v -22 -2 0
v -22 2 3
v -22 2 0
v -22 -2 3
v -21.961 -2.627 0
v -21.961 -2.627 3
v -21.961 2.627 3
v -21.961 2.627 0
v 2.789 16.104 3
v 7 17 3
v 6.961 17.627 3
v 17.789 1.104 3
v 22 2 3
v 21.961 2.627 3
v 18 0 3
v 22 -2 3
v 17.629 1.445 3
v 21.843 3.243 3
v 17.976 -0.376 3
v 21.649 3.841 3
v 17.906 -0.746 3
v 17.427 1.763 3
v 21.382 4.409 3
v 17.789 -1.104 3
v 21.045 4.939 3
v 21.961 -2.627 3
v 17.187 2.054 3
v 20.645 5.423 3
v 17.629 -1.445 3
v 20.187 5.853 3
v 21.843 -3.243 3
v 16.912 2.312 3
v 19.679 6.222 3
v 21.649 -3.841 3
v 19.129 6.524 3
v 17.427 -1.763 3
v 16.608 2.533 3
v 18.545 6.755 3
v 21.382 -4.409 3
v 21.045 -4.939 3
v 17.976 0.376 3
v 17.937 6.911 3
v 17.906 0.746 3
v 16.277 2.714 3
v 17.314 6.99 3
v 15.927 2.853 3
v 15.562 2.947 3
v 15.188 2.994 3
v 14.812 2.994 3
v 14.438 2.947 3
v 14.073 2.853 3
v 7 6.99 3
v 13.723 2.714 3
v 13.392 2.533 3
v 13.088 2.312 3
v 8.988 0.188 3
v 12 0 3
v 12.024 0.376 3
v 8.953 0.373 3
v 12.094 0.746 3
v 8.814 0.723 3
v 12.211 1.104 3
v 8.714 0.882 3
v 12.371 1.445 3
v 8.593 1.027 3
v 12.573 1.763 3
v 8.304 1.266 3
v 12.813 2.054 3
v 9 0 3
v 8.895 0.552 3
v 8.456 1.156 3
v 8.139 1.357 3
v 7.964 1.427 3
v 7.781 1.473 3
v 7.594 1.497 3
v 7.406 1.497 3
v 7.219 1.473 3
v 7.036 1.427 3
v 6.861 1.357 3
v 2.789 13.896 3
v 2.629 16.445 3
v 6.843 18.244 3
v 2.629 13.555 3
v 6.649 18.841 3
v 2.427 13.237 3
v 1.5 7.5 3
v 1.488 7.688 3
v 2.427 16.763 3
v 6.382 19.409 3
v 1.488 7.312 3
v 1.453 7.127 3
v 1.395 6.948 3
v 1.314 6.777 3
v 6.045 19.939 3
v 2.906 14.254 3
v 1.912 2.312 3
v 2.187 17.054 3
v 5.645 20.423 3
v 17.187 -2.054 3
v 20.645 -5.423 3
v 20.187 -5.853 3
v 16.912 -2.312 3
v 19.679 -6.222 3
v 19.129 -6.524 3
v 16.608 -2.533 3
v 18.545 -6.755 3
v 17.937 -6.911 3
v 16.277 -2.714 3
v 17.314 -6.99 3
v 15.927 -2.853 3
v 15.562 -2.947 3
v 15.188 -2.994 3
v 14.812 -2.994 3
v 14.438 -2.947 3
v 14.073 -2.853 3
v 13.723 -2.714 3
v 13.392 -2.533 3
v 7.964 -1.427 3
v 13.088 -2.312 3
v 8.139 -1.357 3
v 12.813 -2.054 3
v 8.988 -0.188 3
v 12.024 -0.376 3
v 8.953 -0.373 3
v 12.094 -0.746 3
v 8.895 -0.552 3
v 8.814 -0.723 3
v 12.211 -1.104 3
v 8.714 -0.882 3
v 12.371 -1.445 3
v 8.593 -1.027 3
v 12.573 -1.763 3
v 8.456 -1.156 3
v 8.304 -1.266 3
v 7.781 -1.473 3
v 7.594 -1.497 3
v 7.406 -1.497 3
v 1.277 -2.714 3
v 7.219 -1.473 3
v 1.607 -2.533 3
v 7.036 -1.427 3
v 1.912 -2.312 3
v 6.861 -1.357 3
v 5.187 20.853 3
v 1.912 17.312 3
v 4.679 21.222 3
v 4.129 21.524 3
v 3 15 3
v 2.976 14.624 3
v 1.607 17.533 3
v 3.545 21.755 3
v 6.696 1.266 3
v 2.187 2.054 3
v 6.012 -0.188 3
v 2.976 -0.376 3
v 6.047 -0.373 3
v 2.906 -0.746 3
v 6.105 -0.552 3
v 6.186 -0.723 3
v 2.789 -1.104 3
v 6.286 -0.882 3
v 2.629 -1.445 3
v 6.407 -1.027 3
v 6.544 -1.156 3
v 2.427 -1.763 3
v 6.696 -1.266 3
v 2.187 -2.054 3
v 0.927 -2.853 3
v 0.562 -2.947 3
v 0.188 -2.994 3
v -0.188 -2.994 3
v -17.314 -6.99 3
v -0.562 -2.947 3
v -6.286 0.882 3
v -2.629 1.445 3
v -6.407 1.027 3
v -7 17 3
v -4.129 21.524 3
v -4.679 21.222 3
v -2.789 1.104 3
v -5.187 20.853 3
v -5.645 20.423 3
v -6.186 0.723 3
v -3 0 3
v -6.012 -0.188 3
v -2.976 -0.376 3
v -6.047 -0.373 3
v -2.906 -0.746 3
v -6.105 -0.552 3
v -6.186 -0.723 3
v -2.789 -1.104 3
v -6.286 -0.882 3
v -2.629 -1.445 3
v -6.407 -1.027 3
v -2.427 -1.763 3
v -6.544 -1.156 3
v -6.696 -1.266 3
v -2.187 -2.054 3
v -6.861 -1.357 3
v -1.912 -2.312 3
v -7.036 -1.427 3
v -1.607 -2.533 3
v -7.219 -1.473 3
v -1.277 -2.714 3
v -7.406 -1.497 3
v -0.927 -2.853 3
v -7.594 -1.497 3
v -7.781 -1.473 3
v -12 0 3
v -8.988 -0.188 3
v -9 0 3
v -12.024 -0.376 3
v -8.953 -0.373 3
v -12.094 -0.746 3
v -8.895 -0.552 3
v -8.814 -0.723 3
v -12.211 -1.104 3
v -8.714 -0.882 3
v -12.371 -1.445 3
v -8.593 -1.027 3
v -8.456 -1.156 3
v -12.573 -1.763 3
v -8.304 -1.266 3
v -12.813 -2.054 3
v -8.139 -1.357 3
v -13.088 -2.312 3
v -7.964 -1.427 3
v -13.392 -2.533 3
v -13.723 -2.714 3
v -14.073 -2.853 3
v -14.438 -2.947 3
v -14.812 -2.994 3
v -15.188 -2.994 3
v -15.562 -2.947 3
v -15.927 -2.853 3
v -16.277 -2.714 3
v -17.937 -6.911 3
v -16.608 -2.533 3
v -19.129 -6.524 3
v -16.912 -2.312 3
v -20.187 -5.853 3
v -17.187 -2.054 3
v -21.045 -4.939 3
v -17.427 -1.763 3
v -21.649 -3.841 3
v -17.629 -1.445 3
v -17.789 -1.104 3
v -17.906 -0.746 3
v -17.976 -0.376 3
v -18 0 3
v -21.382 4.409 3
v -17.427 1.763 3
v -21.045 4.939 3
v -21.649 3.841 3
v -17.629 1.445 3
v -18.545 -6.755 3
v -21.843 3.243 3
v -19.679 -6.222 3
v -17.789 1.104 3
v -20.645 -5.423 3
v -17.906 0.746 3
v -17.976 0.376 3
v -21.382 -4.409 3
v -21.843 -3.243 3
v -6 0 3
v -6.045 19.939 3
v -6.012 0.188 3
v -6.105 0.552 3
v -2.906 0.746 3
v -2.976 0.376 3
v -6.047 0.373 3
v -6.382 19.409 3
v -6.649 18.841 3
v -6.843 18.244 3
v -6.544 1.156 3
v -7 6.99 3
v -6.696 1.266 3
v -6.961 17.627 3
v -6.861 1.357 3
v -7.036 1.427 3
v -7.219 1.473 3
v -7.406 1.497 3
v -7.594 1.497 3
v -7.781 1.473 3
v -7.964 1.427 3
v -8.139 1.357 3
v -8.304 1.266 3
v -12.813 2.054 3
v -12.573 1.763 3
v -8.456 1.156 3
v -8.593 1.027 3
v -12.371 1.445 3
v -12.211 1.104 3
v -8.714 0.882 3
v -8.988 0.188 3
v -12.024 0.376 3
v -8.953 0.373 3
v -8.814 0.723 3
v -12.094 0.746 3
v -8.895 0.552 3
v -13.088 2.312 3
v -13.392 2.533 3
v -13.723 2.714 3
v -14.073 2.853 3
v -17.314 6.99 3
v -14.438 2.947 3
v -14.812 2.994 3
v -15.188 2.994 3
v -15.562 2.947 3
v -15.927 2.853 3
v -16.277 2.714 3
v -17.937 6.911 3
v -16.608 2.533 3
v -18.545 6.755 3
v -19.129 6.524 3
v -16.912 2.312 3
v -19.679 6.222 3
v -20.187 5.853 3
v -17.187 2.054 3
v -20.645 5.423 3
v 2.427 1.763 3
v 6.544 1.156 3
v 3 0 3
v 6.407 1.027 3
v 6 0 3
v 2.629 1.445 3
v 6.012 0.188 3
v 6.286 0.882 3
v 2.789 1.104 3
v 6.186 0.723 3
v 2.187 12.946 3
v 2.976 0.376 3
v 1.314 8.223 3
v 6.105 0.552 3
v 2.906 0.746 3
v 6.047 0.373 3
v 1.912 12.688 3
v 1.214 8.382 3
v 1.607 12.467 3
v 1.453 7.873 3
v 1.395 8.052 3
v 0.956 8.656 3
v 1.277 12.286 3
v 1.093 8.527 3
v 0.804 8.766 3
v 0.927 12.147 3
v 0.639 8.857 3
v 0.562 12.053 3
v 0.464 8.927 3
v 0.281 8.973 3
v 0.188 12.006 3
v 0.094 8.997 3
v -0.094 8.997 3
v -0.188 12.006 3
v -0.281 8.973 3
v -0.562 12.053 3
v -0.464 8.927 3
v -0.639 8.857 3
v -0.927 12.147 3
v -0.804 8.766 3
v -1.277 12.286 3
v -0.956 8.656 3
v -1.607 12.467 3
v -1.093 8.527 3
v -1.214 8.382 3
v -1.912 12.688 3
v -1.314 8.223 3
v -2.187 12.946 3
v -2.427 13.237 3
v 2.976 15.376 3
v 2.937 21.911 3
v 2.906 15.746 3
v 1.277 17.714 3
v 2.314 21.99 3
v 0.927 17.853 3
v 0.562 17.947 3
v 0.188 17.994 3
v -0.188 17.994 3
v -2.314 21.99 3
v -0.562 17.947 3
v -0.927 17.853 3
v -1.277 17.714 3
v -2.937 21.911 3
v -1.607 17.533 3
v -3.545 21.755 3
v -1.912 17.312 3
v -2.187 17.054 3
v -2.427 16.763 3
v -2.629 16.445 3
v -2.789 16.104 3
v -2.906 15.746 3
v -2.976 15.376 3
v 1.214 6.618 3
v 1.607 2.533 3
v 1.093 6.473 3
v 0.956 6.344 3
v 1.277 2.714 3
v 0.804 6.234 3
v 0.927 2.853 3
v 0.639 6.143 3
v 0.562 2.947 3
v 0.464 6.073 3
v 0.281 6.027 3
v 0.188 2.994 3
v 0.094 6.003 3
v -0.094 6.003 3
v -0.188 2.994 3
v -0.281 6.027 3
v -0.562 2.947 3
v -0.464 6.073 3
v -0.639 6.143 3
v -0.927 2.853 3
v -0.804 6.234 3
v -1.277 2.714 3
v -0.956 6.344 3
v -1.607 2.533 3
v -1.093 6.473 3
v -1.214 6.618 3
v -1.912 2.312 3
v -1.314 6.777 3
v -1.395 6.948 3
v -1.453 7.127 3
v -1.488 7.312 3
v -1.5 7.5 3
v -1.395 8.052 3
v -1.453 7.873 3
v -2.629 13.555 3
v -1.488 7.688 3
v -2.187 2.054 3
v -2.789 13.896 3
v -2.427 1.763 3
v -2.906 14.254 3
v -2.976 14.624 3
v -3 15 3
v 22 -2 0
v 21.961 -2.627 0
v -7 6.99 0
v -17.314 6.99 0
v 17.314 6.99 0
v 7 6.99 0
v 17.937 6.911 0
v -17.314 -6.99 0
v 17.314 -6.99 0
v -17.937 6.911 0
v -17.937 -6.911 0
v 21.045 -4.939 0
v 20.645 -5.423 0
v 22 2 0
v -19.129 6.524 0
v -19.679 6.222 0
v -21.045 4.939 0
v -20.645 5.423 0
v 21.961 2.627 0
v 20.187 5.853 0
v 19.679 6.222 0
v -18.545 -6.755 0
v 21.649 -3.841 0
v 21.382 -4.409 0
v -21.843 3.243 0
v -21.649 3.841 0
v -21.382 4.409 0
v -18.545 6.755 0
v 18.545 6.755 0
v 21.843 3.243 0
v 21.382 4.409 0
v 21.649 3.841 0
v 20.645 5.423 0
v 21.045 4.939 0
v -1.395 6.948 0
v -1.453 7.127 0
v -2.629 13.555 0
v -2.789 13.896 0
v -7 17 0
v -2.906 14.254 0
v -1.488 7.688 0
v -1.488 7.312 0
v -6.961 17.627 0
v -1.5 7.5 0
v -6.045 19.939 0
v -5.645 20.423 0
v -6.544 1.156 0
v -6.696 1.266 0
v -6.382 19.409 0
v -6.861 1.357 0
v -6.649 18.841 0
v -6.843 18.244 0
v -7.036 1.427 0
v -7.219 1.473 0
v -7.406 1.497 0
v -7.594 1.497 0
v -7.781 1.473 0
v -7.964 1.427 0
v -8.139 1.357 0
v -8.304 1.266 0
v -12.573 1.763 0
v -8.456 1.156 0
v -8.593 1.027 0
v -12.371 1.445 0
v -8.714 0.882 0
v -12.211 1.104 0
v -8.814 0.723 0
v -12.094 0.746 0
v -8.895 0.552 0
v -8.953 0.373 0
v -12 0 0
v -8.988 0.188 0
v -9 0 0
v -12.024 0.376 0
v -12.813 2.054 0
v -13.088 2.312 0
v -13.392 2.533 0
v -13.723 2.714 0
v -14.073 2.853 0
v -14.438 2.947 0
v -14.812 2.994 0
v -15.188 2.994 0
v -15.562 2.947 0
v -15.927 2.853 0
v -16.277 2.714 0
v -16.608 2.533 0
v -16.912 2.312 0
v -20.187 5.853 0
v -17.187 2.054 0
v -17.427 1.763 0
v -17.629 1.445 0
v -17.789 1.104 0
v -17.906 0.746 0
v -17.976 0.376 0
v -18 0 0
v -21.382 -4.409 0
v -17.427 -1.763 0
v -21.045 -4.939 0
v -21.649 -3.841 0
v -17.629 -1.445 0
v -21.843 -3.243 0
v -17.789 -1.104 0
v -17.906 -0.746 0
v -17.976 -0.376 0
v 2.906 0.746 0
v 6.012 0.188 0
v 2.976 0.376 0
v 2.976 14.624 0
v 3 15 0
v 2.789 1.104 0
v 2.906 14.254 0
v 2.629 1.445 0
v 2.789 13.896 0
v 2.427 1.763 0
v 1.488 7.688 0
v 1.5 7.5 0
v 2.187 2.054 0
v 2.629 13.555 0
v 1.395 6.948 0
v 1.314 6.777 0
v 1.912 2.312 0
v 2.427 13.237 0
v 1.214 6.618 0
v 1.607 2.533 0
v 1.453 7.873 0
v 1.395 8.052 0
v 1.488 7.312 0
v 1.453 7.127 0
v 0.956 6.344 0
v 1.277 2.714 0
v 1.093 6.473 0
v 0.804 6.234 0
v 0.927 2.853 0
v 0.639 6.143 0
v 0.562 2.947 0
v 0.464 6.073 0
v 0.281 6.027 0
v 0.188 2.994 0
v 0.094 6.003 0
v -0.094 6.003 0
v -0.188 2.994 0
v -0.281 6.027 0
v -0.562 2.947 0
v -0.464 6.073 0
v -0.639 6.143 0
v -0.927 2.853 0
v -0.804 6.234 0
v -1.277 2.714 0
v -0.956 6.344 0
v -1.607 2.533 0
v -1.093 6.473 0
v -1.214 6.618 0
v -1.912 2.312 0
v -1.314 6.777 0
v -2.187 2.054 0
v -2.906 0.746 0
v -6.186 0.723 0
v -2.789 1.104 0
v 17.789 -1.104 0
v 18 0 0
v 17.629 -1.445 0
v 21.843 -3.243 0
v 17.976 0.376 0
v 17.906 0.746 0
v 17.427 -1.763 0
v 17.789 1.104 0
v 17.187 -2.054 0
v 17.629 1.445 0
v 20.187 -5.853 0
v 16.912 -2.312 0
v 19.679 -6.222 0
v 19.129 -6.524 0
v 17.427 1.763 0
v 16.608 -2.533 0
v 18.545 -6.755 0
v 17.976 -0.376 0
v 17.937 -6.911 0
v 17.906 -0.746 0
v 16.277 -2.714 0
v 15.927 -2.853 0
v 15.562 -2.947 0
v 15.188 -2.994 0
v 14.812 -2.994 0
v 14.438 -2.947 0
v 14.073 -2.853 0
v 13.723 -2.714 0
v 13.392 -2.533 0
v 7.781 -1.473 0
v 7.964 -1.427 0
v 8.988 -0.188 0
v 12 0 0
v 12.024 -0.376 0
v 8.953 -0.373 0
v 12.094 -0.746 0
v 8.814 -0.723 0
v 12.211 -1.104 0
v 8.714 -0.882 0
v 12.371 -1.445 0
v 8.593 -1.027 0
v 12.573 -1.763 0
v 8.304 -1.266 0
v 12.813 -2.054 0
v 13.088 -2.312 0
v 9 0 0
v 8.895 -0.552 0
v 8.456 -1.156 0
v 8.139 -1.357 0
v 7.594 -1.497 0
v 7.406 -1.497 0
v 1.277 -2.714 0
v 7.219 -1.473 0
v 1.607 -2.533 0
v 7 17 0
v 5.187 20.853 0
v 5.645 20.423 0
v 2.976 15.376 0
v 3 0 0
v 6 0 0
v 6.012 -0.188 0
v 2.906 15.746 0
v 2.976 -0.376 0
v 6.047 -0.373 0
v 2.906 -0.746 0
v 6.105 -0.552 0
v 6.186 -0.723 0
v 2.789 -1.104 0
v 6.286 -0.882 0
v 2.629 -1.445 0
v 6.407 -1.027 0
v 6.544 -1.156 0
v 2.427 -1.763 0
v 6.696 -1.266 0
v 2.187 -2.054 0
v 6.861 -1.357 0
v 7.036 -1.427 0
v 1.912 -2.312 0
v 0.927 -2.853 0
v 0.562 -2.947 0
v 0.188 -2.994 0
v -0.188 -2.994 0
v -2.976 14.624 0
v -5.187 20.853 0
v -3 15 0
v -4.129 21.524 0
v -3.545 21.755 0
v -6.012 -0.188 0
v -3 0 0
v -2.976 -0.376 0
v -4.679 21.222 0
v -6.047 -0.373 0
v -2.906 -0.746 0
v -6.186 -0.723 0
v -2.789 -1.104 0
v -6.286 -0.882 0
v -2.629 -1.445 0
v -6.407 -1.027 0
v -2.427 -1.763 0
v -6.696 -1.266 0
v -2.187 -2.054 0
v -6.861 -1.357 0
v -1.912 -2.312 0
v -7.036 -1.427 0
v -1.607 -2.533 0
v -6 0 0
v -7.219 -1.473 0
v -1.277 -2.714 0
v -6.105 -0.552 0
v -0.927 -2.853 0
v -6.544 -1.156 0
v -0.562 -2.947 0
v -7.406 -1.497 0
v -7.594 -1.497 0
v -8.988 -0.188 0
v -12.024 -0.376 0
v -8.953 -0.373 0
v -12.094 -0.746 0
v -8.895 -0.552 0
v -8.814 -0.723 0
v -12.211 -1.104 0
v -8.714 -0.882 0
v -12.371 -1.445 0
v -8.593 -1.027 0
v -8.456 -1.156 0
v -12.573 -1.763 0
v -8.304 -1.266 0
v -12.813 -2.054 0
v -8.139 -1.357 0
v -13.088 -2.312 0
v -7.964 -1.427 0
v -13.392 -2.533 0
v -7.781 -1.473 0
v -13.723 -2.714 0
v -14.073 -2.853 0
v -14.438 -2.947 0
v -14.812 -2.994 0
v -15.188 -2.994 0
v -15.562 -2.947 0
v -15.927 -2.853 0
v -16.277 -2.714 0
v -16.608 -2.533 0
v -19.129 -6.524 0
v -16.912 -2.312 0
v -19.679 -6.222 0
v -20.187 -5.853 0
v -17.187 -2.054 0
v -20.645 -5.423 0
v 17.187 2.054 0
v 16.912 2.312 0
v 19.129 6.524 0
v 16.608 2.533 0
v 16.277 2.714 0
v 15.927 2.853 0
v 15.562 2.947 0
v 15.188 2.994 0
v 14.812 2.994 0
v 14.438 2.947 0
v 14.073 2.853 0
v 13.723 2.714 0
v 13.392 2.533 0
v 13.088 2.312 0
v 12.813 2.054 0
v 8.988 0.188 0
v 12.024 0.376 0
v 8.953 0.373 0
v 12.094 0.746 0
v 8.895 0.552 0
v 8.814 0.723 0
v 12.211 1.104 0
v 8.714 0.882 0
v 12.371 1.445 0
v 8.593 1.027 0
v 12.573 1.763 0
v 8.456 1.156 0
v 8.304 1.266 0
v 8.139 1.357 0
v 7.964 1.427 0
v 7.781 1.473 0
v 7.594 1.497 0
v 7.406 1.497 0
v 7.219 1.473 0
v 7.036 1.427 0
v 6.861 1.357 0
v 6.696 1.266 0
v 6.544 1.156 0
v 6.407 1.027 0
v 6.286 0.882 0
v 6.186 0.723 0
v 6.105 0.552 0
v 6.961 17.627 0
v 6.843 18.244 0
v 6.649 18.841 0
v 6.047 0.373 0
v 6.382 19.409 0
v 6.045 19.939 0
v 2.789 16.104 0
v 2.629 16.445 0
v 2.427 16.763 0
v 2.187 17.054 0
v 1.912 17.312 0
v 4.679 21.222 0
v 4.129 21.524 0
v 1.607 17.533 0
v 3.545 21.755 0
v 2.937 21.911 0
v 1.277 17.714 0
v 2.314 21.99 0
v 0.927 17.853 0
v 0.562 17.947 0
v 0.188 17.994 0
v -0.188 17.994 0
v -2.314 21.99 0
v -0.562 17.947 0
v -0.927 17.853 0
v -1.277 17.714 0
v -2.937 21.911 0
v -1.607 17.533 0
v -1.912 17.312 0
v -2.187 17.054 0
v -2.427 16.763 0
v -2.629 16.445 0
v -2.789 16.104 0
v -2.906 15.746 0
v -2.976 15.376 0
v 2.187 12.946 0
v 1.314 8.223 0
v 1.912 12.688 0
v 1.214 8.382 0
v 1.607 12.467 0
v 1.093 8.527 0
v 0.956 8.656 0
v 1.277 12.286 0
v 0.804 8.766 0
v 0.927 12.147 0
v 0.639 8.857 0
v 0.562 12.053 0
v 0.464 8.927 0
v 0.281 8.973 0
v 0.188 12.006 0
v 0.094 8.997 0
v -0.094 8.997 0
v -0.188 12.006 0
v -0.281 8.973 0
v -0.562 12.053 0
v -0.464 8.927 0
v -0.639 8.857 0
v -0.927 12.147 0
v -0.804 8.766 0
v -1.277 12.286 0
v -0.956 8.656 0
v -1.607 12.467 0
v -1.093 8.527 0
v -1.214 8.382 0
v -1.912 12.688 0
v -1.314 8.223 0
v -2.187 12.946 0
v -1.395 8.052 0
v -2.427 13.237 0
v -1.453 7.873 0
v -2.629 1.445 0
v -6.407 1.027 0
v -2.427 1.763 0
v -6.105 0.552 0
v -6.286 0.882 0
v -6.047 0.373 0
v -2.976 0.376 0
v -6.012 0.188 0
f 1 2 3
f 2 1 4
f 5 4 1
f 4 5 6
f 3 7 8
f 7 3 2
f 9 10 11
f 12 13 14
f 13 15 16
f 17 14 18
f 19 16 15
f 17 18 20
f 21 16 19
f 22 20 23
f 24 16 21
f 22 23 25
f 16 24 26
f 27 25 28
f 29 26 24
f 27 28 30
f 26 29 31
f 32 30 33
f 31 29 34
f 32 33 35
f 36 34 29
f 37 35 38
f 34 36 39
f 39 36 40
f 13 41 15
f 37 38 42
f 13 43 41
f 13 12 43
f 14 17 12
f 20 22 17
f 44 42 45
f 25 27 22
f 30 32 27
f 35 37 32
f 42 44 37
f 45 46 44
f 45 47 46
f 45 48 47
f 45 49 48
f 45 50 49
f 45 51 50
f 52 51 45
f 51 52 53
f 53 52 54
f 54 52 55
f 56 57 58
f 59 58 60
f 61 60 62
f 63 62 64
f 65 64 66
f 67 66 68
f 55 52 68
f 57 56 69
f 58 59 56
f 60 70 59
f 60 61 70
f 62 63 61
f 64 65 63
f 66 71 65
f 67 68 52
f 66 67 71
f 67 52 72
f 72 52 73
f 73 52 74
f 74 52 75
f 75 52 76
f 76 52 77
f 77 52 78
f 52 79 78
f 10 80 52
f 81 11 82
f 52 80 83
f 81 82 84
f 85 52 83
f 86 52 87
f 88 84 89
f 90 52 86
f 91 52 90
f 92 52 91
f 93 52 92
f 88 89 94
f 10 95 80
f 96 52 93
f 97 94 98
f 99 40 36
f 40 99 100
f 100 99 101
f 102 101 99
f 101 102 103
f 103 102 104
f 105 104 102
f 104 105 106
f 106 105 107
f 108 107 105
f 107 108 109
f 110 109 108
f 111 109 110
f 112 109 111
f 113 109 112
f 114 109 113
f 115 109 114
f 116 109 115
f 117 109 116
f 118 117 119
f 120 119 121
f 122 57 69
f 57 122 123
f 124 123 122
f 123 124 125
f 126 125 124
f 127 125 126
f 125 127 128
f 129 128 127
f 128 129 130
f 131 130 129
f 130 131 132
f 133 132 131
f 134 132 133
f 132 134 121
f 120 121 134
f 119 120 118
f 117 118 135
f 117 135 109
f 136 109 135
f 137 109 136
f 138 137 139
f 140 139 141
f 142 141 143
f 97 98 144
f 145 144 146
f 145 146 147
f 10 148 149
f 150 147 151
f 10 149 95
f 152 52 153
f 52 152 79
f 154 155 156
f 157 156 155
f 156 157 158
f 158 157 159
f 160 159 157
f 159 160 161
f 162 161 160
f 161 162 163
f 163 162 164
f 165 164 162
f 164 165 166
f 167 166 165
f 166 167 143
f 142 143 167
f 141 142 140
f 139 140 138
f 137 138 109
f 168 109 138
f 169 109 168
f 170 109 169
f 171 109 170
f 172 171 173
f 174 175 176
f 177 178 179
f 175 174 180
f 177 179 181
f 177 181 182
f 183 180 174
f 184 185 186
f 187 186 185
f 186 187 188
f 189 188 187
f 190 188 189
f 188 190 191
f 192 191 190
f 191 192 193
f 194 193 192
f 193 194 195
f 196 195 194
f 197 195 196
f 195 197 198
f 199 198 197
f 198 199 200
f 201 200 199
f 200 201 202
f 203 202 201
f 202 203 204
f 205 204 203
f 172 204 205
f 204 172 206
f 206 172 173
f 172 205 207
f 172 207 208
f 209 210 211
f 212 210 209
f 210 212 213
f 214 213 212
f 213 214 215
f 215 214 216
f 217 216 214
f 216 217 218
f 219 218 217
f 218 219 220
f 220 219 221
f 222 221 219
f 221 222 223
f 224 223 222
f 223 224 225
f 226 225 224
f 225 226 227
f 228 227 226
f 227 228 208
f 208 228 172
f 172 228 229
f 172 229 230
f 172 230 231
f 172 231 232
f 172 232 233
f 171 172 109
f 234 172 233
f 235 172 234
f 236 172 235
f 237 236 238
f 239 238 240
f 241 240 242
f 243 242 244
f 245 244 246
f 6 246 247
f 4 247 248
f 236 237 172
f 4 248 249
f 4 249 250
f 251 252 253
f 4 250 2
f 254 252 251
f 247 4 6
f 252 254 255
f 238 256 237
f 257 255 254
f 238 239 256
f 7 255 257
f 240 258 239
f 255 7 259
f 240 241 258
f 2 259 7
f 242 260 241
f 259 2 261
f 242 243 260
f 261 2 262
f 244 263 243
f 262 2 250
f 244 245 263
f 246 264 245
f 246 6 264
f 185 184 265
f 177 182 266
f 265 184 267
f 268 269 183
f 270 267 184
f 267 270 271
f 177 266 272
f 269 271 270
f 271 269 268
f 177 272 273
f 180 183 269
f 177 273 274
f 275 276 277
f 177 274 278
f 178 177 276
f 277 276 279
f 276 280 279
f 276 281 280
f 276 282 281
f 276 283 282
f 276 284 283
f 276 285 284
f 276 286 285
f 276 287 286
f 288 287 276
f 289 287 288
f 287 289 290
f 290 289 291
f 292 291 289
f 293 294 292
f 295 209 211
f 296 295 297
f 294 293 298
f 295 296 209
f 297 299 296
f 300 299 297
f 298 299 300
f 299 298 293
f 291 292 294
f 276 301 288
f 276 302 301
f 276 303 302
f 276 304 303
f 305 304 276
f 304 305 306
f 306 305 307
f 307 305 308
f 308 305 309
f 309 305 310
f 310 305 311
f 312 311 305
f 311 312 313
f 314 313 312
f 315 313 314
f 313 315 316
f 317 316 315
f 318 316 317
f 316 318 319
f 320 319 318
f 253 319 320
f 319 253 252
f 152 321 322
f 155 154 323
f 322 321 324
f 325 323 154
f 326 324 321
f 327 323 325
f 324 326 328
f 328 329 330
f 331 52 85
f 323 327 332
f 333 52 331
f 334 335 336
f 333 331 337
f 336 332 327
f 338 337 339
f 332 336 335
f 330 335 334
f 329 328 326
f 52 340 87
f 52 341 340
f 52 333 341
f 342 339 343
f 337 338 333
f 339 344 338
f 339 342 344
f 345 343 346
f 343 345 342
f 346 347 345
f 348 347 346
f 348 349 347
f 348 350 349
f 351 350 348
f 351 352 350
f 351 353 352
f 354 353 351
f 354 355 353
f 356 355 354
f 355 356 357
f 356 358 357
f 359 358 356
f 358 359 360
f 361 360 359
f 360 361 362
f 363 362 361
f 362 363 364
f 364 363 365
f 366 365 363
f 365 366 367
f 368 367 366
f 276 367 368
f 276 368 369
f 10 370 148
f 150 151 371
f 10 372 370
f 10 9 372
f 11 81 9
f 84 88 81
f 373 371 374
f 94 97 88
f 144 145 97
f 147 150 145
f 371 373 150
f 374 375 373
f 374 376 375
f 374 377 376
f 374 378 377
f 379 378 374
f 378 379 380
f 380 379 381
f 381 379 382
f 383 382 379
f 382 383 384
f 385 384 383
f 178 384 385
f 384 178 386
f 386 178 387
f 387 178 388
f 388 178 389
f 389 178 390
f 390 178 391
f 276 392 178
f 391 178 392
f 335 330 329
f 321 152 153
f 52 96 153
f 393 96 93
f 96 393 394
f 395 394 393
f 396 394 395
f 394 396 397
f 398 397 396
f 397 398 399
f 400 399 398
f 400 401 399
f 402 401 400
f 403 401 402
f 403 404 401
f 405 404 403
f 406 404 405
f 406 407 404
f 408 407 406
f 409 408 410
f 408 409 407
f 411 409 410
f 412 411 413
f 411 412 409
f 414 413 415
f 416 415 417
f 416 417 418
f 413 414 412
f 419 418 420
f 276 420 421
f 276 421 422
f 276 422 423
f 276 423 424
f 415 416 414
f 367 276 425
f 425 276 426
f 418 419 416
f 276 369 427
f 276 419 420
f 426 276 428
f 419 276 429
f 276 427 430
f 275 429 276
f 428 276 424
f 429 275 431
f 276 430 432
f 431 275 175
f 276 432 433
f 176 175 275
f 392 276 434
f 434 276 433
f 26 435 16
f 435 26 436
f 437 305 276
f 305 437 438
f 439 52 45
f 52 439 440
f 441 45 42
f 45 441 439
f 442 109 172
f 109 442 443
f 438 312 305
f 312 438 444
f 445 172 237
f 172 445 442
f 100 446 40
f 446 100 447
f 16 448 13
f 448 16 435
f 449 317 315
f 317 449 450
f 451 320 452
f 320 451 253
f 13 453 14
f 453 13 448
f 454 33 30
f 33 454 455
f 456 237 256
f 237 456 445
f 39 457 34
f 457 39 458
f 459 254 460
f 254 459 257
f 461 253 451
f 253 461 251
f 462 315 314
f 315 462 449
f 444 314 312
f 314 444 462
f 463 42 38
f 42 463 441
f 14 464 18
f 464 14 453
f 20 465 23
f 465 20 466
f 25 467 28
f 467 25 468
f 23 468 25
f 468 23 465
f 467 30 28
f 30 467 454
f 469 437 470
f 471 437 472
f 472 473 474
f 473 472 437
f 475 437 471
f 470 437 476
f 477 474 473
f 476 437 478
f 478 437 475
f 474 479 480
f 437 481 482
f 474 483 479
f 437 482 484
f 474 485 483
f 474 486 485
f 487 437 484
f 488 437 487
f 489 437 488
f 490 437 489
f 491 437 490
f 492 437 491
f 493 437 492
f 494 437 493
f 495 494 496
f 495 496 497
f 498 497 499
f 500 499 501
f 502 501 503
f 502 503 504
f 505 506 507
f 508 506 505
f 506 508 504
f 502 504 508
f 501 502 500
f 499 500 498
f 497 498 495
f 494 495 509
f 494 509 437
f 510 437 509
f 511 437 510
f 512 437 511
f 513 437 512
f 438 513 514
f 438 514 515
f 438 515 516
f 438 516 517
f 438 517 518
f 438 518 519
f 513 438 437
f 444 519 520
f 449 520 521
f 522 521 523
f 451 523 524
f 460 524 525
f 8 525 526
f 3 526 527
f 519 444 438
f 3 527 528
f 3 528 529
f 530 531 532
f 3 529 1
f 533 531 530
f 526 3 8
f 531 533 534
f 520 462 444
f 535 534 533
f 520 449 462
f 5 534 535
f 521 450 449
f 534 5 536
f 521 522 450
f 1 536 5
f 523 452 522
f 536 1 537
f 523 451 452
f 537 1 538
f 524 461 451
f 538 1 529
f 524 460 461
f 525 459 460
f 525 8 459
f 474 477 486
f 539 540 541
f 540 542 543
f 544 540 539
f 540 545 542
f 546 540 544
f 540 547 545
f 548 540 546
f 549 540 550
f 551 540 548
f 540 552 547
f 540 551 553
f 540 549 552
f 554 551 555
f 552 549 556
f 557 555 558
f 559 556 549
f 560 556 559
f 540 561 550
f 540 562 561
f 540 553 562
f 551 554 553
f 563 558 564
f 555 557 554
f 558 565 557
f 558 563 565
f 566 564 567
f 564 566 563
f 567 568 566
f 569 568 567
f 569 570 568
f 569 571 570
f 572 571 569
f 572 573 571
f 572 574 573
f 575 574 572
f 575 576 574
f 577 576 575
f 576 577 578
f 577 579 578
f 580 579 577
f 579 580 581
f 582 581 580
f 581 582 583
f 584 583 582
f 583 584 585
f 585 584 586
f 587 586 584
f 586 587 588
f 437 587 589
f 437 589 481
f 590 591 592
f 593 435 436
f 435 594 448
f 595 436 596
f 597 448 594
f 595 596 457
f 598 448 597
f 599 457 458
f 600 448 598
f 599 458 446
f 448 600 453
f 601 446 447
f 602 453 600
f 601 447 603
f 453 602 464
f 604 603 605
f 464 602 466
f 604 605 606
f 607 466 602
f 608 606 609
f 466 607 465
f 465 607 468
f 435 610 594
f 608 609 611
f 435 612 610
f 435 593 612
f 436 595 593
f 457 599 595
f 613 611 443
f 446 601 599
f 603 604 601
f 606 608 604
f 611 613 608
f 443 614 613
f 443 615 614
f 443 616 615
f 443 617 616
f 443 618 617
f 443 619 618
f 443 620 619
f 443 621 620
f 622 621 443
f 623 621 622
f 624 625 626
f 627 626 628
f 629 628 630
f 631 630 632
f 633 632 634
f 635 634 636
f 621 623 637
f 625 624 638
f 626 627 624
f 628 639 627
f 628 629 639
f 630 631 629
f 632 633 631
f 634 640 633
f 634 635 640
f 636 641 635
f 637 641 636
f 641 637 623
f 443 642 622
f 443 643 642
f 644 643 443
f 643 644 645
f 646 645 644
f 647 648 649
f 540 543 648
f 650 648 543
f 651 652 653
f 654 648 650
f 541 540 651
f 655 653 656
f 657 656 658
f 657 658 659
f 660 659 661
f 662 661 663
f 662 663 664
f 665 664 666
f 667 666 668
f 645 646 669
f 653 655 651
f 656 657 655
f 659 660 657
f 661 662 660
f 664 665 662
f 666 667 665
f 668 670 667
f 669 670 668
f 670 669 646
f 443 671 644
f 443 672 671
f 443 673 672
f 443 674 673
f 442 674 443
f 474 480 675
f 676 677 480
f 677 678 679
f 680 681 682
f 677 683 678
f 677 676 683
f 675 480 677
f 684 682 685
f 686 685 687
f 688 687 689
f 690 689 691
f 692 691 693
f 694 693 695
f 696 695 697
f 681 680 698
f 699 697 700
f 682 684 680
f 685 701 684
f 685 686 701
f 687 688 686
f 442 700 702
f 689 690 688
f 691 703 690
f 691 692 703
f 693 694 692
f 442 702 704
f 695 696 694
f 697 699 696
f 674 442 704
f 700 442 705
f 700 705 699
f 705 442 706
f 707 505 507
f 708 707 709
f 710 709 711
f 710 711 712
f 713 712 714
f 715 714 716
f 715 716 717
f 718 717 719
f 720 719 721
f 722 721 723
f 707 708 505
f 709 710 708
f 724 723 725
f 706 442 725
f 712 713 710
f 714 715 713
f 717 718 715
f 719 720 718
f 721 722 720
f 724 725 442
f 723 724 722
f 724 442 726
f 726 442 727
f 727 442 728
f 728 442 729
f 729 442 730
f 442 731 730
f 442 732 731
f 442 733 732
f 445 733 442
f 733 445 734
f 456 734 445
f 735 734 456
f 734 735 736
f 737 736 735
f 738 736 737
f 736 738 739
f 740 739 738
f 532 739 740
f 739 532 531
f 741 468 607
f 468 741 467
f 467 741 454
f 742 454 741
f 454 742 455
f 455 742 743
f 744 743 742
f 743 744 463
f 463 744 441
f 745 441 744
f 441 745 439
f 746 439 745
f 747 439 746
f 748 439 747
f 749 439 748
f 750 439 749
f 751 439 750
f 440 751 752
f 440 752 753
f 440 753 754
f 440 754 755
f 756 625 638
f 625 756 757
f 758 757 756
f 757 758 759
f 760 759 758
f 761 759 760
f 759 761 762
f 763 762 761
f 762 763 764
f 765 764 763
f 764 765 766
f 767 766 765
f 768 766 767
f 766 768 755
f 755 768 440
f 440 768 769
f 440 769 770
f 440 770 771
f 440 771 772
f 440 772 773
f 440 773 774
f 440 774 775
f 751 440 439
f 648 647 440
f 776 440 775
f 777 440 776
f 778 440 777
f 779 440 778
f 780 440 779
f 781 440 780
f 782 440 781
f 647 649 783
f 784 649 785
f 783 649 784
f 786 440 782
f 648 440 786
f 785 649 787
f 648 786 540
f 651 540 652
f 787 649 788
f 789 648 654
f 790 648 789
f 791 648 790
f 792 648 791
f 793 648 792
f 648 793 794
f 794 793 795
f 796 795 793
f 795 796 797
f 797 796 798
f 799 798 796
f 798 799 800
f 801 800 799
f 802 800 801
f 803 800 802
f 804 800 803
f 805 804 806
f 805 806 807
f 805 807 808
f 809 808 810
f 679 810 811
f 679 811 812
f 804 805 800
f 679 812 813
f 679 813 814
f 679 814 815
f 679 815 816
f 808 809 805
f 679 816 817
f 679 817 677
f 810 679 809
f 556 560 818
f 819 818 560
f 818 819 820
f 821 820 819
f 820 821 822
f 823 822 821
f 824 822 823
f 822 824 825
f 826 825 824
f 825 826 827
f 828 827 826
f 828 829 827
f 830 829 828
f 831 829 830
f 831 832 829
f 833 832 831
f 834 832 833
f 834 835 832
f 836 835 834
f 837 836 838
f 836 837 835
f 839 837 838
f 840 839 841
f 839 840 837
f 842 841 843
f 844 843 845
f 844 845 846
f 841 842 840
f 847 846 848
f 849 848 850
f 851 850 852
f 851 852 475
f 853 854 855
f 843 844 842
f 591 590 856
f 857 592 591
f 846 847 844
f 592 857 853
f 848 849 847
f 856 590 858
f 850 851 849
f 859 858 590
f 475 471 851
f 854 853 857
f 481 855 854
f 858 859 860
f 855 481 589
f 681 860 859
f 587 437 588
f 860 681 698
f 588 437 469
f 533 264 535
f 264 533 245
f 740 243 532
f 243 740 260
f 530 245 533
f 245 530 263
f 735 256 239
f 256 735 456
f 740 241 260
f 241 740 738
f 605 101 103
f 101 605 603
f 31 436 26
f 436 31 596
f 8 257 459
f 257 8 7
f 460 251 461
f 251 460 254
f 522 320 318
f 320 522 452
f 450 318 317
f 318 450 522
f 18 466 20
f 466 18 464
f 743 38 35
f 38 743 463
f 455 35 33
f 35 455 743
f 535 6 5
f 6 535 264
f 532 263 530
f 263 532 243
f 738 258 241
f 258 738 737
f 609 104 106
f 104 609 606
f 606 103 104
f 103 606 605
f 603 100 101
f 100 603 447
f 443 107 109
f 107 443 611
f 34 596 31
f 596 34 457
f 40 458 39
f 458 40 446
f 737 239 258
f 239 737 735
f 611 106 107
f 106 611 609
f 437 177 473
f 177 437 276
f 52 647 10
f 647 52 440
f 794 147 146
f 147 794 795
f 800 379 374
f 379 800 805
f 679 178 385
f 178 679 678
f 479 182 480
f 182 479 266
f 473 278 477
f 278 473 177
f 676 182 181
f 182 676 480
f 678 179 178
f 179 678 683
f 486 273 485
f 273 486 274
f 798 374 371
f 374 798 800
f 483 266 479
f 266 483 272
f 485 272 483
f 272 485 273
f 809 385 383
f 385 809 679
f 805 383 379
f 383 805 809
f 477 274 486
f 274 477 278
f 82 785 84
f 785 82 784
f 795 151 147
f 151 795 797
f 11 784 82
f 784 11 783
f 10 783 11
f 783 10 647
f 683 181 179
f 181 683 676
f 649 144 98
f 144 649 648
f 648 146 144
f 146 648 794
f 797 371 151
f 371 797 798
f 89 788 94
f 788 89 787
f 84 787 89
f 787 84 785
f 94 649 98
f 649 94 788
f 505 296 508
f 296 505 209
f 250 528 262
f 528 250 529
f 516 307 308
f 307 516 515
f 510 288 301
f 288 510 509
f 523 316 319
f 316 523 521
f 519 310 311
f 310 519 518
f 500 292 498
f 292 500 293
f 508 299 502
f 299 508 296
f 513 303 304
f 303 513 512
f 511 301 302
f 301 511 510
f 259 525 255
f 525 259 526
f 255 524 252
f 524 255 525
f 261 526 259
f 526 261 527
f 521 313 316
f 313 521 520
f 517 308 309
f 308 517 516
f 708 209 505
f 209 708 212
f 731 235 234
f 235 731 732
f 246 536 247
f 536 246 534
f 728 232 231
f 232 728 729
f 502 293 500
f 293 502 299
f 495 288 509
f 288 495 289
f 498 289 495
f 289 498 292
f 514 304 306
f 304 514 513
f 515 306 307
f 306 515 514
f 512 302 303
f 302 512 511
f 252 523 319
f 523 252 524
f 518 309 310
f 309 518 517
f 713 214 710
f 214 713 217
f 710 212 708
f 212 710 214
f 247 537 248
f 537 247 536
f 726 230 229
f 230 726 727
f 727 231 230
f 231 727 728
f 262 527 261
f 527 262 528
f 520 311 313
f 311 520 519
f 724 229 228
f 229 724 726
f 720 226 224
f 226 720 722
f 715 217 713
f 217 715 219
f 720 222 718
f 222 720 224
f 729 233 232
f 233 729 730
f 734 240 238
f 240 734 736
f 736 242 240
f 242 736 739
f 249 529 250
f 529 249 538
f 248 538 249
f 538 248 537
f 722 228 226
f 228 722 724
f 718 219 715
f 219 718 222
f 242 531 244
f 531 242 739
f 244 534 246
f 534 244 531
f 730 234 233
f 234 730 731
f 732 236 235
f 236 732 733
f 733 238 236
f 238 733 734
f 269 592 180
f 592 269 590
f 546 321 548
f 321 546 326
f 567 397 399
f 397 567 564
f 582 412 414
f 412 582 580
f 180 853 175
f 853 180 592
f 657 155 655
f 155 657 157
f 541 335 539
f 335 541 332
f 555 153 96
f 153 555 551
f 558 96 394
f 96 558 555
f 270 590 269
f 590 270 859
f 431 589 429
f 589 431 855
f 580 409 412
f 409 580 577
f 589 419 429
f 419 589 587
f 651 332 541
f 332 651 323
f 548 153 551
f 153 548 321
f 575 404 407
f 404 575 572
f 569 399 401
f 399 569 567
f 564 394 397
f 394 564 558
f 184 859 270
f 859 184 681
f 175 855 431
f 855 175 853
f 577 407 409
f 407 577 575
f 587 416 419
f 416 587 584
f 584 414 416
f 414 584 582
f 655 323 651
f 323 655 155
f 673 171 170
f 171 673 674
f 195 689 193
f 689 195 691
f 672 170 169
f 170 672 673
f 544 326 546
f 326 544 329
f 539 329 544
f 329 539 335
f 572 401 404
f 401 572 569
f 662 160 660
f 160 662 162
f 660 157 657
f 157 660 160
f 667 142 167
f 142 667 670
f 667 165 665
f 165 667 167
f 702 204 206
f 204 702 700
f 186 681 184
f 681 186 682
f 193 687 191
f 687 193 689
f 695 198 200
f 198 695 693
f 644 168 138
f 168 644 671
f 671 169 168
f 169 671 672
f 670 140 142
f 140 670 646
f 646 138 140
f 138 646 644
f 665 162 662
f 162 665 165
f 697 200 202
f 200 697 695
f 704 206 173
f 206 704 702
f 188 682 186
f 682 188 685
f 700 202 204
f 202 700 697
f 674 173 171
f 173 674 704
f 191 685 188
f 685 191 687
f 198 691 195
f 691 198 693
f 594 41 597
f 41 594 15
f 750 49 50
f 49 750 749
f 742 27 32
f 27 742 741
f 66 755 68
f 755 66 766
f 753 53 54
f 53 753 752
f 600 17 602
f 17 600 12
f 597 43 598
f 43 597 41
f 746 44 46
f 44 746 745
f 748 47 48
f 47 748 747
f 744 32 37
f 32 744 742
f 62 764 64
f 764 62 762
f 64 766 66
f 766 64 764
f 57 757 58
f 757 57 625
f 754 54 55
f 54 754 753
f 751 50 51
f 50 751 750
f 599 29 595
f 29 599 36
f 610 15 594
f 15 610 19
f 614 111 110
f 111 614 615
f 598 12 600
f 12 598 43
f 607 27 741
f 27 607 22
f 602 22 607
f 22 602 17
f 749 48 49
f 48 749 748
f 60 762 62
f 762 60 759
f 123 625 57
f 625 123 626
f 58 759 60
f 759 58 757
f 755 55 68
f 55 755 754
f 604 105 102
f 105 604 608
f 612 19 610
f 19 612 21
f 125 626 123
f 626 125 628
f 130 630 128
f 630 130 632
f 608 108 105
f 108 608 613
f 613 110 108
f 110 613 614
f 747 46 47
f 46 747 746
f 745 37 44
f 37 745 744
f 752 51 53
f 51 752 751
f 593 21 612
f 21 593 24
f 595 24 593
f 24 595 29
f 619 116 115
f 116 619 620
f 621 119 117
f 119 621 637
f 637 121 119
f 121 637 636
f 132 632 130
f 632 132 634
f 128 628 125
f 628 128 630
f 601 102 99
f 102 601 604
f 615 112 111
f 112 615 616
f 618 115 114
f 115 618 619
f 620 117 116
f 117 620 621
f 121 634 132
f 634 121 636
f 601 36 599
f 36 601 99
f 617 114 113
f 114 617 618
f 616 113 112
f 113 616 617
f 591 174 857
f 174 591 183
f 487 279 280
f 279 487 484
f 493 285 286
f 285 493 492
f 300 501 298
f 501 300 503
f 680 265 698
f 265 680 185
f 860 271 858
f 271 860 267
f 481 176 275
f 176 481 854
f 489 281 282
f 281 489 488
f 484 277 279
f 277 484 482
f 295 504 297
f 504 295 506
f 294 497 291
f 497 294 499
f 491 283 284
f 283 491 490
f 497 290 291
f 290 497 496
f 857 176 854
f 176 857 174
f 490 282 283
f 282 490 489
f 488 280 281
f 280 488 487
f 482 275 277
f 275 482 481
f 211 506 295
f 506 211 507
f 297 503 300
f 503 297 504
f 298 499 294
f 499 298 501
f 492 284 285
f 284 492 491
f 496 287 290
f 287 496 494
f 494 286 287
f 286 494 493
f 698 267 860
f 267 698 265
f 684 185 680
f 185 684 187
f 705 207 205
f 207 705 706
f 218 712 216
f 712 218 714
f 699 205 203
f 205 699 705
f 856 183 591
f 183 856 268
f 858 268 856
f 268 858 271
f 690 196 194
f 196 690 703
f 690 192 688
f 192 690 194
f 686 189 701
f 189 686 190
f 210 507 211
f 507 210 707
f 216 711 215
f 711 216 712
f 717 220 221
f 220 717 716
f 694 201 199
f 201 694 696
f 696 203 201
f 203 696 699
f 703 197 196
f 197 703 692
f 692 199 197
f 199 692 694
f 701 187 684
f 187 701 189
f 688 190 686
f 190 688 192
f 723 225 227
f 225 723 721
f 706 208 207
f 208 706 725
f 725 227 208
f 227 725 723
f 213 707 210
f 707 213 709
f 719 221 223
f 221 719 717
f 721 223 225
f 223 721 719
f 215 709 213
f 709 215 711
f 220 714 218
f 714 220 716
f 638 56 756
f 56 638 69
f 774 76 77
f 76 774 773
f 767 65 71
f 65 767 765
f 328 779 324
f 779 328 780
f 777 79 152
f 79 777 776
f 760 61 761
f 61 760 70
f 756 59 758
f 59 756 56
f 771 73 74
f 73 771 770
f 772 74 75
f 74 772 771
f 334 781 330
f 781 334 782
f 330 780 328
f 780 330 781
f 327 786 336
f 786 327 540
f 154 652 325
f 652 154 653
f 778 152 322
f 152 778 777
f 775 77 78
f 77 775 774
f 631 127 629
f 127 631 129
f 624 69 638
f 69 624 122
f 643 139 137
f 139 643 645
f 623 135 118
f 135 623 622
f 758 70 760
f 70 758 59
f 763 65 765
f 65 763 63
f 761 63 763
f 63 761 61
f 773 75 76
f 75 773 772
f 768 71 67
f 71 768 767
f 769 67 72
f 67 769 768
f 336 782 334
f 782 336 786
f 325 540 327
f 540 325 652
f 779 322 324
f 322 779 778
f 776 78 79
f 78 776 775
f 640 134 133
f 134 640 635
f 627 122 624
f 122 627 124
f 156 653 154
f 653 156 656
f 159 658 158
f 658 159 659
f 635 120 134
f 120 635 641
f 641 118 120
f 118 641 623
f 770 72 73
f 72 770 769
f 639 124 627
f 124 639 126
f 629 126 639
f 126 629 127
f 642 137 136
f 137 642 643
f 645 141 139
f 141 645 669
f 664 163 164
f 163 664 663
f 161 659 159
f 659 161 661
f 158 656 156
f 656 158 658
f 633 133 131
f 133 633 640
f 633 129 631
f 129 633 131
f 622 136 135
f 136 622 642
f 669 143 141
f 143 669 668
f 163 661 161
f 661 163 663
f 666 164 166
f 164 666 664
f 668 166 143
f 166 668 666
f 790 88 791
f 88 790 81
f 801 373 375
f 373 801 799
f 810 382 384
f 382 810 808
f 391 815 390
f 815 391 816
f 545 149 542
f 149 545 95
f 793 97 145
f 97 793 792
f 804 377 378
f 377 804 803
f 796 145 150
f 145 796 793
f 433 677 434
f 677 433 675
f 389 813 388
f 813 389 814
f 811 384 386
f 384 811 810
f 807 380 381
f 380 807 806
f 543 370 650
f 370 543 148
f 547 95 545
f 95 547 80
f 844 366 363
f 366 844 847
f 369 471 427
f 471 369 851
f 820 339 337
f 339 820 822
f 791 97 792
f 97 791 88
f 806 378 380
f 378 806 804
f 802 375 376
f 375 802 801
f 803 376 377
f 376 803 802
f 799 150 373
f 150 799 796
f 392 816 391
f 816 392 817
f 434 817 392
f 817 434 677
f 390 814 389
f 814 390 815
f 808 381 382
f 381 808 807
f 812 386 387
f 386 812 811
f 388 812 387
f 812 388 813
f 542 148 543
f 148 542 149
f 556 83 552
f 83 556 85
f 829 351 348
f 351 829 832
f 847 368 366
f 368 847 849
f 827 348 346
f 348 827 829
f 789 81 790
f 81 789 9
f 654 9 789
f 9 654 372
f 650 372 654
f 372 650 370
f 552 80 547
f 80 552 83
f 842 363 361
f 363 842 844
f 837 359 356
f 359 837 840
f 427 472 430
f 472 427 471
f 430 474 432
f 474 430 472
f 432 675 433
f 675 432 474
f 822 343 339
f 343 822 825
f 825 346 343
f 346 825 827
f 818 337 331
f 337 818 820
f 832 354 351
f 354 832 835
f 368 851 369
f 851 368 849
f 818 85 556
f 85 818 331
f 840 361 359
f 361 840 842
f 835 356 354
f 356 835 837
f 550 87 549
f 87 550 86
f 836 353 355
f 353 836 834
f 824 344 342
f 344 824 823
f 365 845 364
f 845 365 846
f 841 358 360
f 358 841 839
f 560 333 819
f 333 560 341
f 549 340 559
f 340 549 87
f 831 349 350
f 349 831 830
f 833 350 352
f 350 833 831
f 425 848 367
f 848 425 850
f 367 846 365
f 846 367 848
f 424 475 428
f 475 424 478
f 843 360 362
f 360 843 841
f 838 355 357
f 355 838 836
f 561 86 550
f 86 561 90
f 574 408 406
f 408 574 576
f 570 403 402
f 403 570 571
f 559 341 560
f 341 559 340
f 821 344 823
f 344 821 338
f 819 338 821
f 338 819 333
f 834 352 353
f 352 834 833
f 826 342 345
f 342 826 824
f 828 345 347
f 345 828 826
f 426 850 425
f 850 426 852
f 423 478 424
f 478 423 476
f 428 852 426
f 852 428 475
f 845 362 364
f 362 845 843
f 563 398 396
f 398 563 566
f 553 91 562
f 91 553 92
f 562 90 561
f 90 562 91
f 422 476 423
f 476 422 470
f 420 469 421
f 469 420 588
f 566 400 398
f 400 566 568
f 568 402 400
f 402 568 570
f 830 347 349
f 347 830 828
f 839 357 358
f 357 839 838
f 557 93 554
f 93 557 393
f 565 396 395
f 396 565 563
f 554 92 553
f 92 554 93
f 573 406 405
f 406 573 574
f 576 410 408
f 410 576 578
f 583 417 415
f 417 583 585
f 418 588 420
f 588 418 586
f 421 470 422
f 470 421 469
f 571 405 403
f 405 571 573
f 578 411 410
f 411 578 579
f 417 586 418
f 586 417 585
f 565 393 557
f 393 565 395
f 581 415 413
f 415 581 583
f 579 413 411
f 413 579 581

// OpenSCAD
$fn = 50;


difference() {
	union() {
		*color(alpha = 1.0000000000, c = "gray") {
			translate(v = [0, 7, 0]) {
				linear_extrude(height = 1) {
					text(font = "Arial:style=Bold", halign = "center", size = 4.5000000000, text = "COMMENT plate main", valign = "center");
				}
			}
		}
		hull() {
			translate(v = [-17.0000000000, 2.0000000000, 0]) {
				cylinder(h = 3, r = 5);
			}
			translate(v = [17.0000000000, 2.0000000000, 0]) {
				cylinder(h = 3, r = 5);
			}
			translate(v = [-17.0000000000, -2.0000000000, 0]) {
				cylinder(h = 3, r = 5);
			}
			translate(v = [17.0000000000, -2.0000000000, 0]) {
				cylinder(h = 3, r = 5);
			}
		}
		*color(alpha = 1.0000000000, c = "gray") {
			translate(v = [0, 7, 0]) {
				linear_extrude(height = 1) {
					text(font = "Arial:style=Bold", halign = "center", size = 4.5000000000, text = "COMMENT plate main", valign = "center");
				}
			}
		}
		translate(v = [0, 7.5000000000, 0]) {
			hull() {
				translate(v = [-2.0000000000, 9.5000000000, 0]) {
					cylinder(h = 3, r = 5);
				}
				translate(v = [2.0000000000, 9.5000000000, 0]) {
					cylinder(h = 3, r = 5);
				}
				translate(v = [-2.0000000000, -9.5000000000, 0]) {
					cylinder(h = 3, r = 5);
				}
				translate(v = [2.0000000000, -9.5000000000, 0]) {
					cylinder(h = 3, r = 5);
				}
			}
		}
	}
	union() {
		*color(alpha = 1.0000000000, c = "gray") {
			translate(v = [0, 7, 0]) {
				linear_extrude(height = 1) {
					text(font = "Arial:style=Bold", halign = "center", size = 4.5000000000, text = "COMMENT holes main", valign = "center");
				}
			}
		}
		translate(v = [-15.0000000000, 0.0000000000, 0]) {
			translate(v = [0, 0, -50]) {
				cylinder(h = 100, r = 3.0000000000);
			}
		}
		translate(v = [0, 0, -50]) {
			cylinder(h = 100, r = 3.0000000000);
		}
		translate(v = [15.0000000000, 0.0000000000, 0]) {
			translate(v = [0, 0, -50]) {
				cylinder(h = 100, r = 3.0000000000);
			}
		}
		translate(v = [-15.0000000000, 0.0000000000, 0]) {
			translate(v = [0, 0, -50]) {
				cylinder(h = 100, r = 1.5000000000);
			}
		}
		translate(v = [-7.5000000000, 0.0000000000, 0]) {
			translate(v = [0, 0, -50]) {
				cylinder(h = 100, r = 1.5000000000);
			}
		}
		translate(v = [0, 0, -50]) {
			cylinder(h = 100, r = 1.5000000000);
		}
		translate(v = [7.5000000000, 0.0000000000, 0]) {
			translate(v = [0, 0, -50]) {
				cylinder(h = 100, r = 1.5000000000);
			}
		}
		translate(v = [15.0000000000, 0.0000000000, 0]) {
			translate(v = [0, 0, -50]) {
				cylinder(h = 100, r = 1.5000000000);
			}
		}
		*color(alpha = 1.0000000000, c = "gray") {
			translate(v = [0, 7, 0]) {
				linear_extrude(height = 1) {
					text(font = "Arial:style=Bold", halign = "center", size = 4.5000000000, text = "COMMENT holes main", valign = "center");
				}
			}
		}
		translate(v = [0, 0, -50]) {
			cylinder(h = 100, r = 3.0000000000);
		}
		translate(v = [0.0000000000, 15.0000000000, 0]) {
			translate(v = [0, 0, -50]) {
				cylinder(h = 100, r = 3.0000000000);
			}
		}
		translate(v = [0, 0, -50]) {
			cylinder(h = 100, r = 1.5000000000);
		}
		translate(v = [0.0000000000, 7.5000000000, 0]) {
			translate(v = [0, 0, -50]) {
				cylinder(h = 100, r = 1.5000000000);
			}
		}
		translate(v = [0.0000000000, 15.0000000000, 0]) {
			translate(v = [0, 0, -50]) {
				cylinder(h = 100, r = 1.5000000000);
			}
		}
	}
}
